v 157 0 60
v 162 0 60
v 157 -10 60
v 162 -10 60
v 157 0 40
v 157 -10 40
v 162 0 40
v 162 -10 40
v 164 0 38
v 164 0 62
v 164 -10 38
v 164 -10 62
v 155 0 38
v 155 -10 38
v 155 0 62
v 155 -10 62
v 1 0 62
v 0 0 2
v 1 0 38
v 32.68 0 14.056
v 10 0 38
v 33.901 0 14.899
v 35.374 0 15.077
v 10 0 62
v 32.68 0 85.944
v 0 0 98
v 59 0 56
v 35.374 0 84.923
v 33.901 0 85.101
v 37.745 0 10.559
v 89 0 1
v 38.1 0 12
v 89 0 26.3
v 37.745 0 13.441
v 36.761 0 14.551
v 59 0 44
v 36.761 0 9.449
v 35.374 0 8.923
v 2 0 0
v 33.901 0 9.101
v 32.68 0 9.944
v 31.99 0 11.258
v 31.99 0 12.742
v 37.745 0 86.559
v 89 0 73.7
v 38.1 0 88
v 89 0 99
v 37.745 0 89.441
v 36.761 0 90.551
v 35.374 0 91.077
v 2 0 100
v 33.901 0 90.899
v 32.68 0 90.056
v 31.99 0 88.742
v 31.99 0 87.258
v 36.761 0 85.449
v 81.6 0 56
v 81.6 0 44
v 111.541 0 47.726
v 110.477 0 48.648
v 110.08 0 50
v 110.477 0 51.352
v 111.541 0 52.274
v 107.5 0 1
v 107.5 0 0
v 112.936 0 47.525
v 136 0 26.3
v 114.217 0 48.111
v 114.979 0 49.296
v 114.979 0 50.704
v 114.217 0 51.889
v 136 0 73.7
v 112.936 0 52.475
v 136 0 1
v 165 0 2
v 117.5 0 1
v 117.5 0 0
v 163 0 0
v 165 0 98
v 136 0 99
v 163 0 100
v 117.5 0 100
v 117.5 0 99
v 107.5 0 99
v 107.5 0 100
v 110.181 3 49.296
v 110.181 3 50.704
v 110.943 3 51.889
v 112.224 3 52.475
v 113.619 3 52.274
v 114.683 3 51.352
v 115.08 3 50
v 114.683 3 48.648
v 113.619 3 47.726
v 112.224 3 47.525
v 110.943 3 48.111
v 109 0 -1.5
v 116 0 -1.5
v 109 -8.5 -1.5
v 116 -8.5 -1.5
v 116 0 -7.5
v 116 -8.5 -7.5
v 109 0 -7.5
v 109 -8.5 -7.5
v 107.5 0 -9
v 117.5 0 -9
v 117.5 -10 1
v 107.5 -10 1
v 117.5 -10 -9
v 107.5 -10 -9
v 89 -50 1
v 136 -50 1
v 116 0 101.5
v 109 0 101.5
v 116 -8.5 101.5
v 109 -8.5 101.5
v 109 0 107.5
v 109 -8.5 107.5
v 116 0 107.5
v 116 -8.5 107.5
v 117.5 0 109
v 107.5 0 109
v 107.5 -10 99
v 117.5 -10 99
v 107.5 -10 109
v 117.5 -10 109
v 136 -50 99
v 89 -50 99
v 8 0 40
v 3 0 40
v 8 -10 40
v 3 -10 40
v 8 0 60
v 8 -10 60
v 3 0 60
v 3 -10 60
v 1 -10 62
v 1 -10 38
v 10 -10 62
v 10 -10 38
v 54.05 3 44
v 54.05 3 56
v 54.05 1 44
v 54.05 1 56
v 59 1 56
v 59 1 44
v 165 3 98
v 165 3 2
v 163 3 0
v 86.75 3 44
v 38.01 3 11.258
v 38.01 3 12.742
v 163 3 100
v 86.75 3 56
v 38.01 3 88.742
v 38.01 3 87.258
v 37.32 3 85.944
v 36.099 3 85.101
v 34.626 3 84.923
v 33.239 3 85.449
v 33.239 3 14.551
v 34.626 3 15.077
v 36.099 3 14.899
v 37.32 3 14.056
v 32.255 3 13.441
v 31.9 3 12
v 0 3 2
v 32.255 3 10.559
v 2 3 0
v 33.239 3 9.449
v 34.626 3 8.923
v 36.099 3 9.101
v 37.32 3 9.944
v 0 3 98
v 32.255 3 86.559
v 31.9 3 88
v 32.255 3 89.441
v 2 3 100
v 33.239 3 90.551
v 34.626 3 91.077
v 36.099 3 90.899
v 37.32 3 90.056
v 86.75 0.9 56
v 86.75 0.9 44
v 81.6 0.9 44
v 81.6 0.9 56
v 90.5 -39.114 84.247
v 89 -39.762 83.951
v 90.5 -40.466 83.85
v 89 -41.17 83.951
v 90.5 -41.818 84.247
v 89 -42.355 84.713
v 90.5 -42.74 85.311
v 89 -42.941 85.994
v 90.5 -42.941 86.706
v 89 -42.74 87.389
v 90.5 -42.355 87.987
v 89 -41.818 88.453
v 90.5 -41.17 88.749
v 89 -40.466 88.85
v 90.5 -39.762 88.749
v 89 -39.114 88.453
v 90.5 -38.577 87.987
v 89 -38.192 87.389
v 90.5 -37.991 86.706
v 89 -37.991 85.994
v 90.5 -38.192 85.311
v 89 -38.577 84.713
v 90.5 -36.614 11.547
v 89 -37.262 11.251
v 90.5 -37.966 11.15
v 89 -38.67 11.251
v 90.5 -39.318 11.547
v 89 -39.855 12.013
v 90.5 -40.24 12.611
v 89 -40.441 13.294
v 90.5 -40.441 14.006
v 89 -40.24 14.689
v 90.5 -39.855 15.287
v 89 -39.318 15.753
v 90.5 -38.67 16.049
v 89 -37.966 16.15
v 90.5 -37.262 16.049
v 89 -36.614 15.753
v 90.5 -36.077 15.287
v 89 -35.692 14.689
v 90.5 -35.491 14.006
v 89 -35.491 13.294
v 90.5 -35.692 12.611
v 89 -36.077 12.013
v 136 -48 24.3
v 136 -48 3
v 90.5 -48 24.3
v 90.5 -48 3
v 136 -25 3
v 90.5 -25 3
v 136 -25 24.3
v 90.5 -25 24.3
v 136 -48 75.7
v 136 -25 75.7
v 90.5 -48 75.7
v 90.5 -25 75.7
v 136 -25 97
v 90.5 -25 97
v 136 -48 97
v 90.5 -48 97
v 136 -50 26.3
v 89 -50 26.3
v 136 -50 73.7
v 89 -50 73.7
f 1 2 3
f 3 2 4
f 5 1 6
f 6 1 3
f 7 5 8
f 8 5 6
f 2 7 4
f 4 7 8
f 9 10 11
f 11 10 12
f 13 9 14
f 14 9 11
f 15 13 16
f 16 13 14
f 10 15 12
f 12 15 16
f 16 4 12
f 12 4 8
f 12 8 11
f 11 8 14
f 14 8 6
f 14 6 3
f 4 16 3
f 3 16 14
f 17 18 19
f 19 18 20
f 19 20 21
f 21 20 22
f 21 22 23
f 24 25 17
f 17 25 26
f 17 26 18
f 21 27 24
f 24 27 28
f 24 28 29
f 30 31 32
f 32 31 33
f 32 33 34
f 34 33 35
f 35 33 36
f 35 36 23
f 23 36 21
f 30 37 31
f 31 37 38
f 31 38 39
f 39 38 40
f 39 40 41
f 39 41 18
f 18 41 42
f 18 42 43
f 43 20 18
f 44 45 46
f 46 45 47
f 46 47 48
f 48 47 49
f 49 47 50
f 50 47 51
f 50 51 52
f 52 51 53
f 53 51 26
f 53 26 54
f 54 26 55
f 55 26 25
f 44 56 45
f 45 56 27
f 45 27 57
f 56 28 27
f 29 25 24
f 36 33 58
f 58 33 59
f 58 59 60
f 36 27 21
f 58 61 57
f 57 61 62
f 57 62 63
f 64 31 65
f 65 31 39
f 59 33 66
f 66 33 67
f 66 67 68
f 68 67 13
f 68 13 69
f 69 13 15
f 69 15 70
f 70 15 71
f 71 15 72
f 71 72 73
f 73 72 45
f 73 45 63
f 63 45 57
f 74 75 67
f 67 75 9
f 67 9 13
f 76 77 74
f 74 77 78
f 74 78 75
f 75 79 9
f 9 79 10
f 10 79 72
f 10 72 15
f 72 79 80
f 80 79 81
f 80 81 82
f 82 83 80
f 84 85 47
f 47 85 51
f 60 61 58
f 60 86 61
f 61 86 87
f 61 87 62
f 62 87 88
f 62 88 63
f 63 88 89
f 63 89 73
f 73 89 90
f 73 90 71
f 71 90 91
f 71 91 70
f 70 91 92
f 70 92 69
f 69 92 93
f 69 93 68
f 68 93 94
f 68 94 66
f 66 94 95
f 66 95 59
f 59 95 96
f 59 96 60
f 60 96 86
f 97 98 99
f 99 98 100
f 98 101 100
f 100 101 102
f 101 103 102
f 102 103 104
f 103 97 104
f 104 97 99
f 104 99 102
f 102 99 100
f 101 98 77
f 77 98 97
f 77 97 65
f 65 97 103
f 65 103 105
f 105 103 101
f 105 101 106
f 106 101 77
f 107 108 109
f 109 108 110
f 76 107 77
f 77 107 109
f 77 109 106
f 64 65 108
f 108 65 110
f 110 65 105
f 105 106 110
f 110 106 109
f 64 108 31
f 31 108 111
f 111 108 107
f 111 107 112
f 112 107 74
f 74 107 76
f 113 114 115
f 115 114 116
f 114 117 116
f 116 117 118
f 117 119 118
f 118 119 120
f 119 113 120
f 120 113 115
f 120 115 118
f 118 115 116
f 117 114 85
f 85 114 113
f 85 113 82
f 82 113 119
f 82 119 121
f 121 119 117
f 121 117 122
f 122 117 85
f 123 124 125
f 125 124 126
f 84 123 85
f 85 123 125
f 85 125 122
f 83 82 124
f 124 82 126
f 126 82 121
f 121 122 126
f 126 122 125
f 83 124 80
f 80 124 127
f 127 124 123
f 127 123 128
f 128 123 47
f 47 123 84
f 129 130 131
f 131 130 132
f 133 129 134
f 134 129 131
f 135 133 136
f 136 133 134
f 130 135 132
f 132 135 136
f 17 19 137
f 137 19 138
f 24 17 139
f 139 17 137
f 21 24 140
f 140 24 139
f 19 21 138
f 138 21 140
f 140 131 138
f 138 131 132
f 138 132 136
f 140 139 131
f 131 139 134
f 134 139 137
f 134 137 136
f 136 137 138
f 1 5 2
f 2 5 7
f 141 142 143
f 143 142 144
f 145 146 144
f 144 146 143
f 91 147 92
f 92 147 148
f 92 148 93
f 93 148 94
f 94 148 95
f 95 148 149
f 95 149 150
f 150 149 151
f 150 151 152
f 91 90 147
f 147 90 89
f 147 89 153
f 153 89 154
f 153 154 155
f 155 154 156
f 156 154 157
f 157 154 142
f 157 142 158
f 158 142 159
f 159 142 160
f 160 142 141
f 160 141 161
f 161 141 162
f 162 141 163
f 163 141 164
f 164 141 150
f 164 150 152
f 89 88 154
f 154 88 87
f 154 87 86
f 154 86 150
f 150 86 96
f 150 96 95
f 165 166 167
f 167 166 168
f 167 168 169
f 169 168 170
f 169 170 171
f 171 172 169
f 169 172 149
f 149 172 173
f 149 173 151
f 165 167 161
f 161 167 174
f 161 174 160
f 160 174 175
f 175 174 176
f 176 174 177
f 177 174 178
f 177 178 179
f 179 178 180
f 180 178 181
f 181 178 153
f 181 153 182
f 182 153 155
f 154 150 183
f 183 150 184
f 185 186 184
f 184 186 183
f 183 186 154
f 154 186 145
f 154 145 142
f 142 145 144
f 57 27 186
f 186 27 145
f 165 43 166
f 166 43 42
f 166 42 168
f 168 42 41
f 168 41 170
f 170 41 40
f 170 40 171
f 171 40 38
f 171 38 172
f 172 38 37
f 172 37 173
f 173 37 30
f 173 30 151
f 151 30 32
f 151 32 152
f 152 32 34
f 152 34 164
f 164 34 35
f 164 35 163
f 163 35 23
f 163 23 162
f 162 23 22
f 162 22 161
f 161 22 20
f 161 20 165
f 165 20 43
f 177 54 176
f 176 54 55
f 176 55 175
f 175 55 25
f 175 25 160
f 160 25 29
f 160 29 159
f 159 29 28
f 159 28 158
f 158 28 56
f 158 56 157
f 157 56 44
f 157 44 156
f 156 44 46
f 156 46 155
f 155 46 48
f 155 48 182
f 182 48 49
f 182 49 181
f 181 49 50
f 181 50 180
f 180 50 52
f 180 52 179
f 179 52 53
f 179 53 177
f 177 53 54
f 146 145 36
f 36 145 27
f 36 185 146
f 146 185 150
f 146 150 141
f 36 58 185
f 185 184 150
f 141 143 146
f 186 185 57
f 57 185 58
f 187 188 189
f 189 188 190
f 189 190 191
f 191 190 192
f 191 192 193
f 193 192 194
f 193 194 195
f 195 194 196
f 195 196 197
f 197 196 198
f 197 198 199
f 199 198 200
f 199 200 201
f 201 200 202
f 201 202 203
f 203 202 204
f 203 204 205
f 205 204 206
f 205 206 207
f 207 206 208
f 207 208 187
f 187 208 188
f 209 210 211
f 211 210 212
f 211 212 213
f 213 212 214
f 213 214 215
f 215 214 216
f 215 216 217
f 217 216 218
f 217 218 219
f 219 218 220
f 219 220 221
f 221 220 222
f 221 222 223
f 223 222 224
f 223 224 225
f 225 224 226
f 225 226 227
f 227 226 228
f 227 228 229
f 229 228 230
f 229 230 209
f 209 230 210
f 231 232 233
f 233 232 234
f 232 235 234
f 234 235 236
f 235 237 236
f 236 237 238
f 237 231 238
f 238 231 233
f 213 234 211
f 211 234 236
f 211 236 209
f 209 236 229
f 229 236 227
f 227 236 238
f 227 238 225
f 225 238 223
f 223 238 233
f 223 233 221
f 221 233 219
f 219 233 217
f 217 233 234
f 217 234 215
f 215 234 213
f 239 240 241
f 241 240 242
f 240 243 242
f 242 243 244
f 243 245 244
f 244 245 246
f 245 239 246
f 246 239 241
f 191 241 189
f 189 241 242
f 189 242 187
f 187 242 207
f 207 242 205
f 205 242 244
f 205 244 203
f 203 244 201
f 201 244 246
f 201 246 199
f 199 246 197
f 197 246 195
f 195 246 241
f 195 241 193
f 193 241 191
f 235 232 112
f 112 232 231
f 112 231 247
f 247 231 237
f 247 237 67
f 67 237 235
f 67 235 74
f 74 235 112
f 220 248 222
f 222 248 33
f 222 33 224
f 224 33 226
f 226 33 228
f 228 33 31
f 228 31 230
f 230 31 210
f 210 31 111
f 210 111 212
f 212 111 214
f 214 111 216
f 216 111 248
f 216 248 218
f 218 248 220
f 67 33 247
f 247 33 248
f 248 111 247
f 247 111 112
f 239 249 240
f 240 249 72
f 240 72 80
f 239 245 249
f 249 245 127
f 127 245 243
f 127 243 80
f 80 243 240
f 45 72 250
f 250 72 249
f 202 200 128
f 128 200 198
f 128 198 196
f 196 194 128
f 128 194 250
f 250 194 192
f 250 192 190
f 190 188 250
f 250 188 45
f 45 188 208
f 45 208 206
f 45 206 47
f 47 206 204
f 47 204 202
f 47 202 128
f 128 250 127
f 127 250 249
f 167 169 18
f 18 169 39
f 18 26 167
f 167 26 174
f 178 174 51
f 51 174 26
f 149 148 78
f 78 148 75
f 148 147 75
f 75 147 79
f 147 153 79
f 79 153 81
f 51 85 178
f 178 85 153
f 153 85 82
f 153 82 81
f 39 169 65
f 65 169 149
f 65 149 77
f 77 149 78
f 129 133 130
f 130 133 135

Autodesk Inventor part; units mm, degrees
ref_plane "YZ Plane" through (0, 0, 0) normal (1, 0, 0) x (0, 1, 0)
ref_plane "XZ Plane" through (0, 0, 0) normal (0, 1, 0) x (-1, 0, 0)
ref_plane "XY Plane" through (0, 0, 0) normal (0, 0, 1) x (1, 0, 0)
sketch "Sketch1" plane through (0, 0, 0) normal (0, 1, 0) x (-1, 0, 0)
  line L0 (0, 0) -> (-165, 0)
  line L1 (-165, 0) -> (-165, 100)
  line L2 (0, 0) -> (0, 100)
  line L3 (0, 100) -> (-165, 100)
  dimension "d0" = 165
  dimension "d1" = 100
extrude "Extrusion1" add sketch "Sketch1" along normal blind 3
chamfer "Chamfer1" distance 2 angle 45 4 edges at (165, 1.5, 100) (165, 1.5, 0) (0, 1.5, 100) (0, 1.5, 0)
sketch "Sketch2" plane through (0, 0, 0) normal (0, -1, 0) x (1, 0, 0)
  line L0 (163, 100) -> (165, 98) projected
  line L1 (165, 98) -> (135, 98)
  line L2 (135, 98) -> (135, 74.7)
  line L3 (135, 98) -> (90, 98)
  line L4 (135, 74.7) -> (90, 74.7)
  line L5 (90, 74.7) -> (90, 98)
  line L6 (89, 73.7) -> (136, 73.7)
  line L7 (136, 73.7) -> (136, 99)
  line L8 (136, 99) -> (89, 99)
  line L9 (89, 99) -> (89, 73.7)
  line L10 (165, 98) -> (165, 2) projected
  line L11 (165, 2) -> (135, 2)
  line L12 (135, 2) -> (135, 25.3)
  line L13 (135, 25.3) -> (90, 25.3)
  line L14 (90, 25.3) -> (90, 2)
  line L15 (90, 2) -> (135, 2)
  line L16 (136, 26.3) -> (136, 1)
  line L17 (136, 1) -> (89, 1)
  line L18 (89, 1) -> (89, 26.3)
  line L19 (89, 26.3) -> (136, 26.3)
  point P0 (0, 0)
  dimension "d7" = 30
  dimension "d8" = 23.3
  dimension "d9" = 45
  dimension "d10" = 1
  dimension "d11" = 23.3
  dimension "d12" = 1
  dimension "d24" = 45
extrude "Extrusion2" add sketch "Sketch2" along normal blind 50 contours L2 L4 L5 L3 | L7 L6 L9 L8 | L15 L14 L13 L12 | L16 L17 L18 L19
sketch "Sketch3" plane through (136, 0, 99) normal (1, 0, 0) x (0, 0, -1)
  line L0 (72.7, 0) -> (72.7, -50) projected
  line L1 (72.7, -50) -> (72.7, -23)
  line L2 (72.7, -23) -> (98, -23)
  line L3 (98, 0) -> (98, -50) projected
  line L4 (98, -23) -> (98, -50)
  line L5 (98, -50) -> (72.7, -50)
  line L6 (96, -25) -> (74.7, -25)
  line L7 (74.7, -25) -> (74.7, -48)
  line L8 (74.7, -48) -> (96, -48)
  line L9 (96, -48) -> (96, -25)
  line L10 (25.3, 0) -> (25.3, -50) projected
  line L11 (0, -50) -> (25.3, -50)
  line L12 (25.3, -50) -> (25.3, -23)
  line L13 (25.3, -23) -> (0, -23)
  line L14 (0, -23) -> (0, -50)
  line L15 (2, -25) -> (23.3, -25)
  line L16 (23.3, -25) -> (23.3, -48)
  line L17 (23.3, -48) -> (2, -48)
  line L18 (2, -48) -> (2, -25)
  point P0 (99, 0)
  dimension "d15" = 27
  dimension "d16" = 2
  dimension "d17" = 2
extrude "Extrusion3" cut sketch "Sketch3" against normal blind 45.5 contours L9 L8 L7 L6 | L15 L16 L17 L18
sketch "Sketch4" plane through (89, 0, 1) normal (-1, 0, 0) x (0, 0, 1)
  circle A0 centre (12.65, -37.966) radius 2.5
  circle A1 centre (85.35, -40.466) radius 2.5
  point P0 (-1, 0)
  dimension "d20" = 5
  dimension "d21" = 5
extrude "Extrusion4" cut sketch "Sketch4" against normal blind 41
sketch "Sketch5" plane through (0, 0, 0) normal (0, -1, 0) x (1, 0, 0)
  line L0 (89, 1) -> (89, 26.3) projected
  line L1 (89, 73.7) -> (89, 99) projected
  line L2 (42.1762, 44) -> (98.4238, 44)
  line L3 (70.3, 44) -> (70.3, 56)
  line L4 (70.3, 56) -> (59, 56)
  line L5 (70.3, 56) -> (81.6, 56)
  line L6 (81.6, 56) -> (81.6, 44)
  line L7 (59, 56) -> (59, 44)
  line L8 (59, 50) -> (35, 50)
  line L9 (35, 50) -> (35, 12)
  line L10 (35, 50) -> (35, 88)
  circle A0 centre (35, 12) radius 3.1
  circle A1 centre (35, 88) radius 3.1
  line L11 (89, 73.7) -> (136, 73.7) projected
  line L12 (89, 73.7) -> (71, 73.7)
  point P0 (0, 0)
  point P1 (65, 50)
  point P2 (71, 50)
  point P3 (53.7, 50)
  dimension "d25" = 12
  dimension "d26" = 11.3
  dimension "d27" = 11.3
  dimension "d28" = 24
  dimension "d29" = 38
  dimension "d30" = 38
  dimension "d31" = 6.2
  dimension "d32" = 6.2
  dimension "d39" = 18
extrude "Extrusion5" cut sketch "Sketch5" against normal blind 45.5
sketch "Sketch6" plane through (0, 3, 0) normal (0, 1, 0) x (1, 0, 0)
  line L0 (59, -44) -> (81.6, -44) projected
  line L1 (70.3, -44) -> (70.3, -27.55)
  line L2 (70.3, -44) -> (86.75, -44)
  line L3 (86.75, -44) -> (86.75, -56)
  line L4 (86.75, -56) -> (70.3, -56)
  line L5 (70.3, -56) -> (70.3, -27.55)
  point P0 (0, 0)
  point P1 (71, -38.7)
  dimension "d35" = 16.45
  dimension "d36" = 16.45
extrude "Extrusion6" cut sketch "Sketch6" against normal blind 2.1
sketch "Sketch7" plane through (0, 3, 0) normal (0, 1, 0) x (1, 0, 0)
  line L0 (81.6, -44) -> (59, -44) projected
  line L1 (70.3, -44) -> (54.05, -44)
  line L2 (70.3, -44) -> (86.55, -44)
  line L3 (54.05, -44) -> (54.05, -56)
  line L4 (86.75, -56) -> (81.6, -56) projected
  line L5 (54.05, -56) -> (86.75, -56)
  line L6 (86.75, -56) -> (86.55, -44)
  point P0 (0, 0)
  dimension "d40" = 16.25
  dimension "d41" = 16.25
extrude "Extrusion7" cut sketch "Sketch7" against normal blind 2
sketch "Sketch8" plane through (0, 0, 0) normal (0, -1, 0) x (1, 0, 0)
  line L0 (0, 2) -> (0, 98) projected
  line L1 (0, 50) -> (3, 50)
  line L2 (3, 50) -> (3, 60)
  line L3 (2, 100) -> (163, 100) projected
  line L4 (3, 50) -> (3, 40)
  line L5 (3, 40) -> (8, 40)
  line L6 (8, 40) -> (8, 60)
  line L7 (8, 60) -> (3, 60)
  line L8 (10, 62) -> (10, 38)
  line L9 (10, 38) -> (1, 38)
  line L10 (1, 38) -> (1, 50)
  line L11 (1, 50) -> (1, 62)
  line L12 (1, 62) -> (10, 62)
  point P0 (0, 0)
  dimension "d44" = 3
  dimension "d45" = 10
  dimension "d46" = 10
  dimension "d47" = 5
  dimension "d48" = 2
extrude "Extrusion8" add sketch "Sketch8" along normal blind 10
sketch "Sketch9" plane through (89, 0, 99) normal (0, 0, 1) x (1, 0, 0)
  line L0 (47, 0) -> (0, 0) projected
  line L1 (23.5, 0) -> (28.5, 0)
  line L2 (23.5, 0) -> (18.5, 0)
  line L3 (18.5, 0) -> (18.5, -10)
  line L4 (18.5, -10) -> (28.5, -10)
  line L5 (28.5, -10) -> (28.5, 0)
  point P0 (-89, 0)
  dimension "d51" = 5
  dimension "d52" = 5
  dimension "d53" = 10
extrude "Extrusion9" add sketch "Sketch9" along normal blind 10
sketch "Sketch10" plane through (107.5, 0, 100) normal (0, 1, 0) x (1, 0, 0)
  line L0 (0, 0) -> (0, -9) projected
  line L1 (10, 0) -> (10, -9) projected
  line L2 (0, 0) -> (10, 0)
  line L3 (10, 0) -> (10, -9)
  line L4 (10, -9) -> (0, -9)
  line L5 (0, -9) -> (0, 0)
  line L6 (1.5, -7.5) -> (8.5, -7.5)
  line L7 (8.5, -7.5) -> (8.5, -1.5)
  line L8 (8.5, -1.5) -> (1.5, -1.5)
  line L9 (1.5, -1.5) -> (1.5, -7.5)
  point P0 (-107.5, 100)
  dimension "d56" = 1.5
extrude "Extrusion10" cut sketch "Sketch10" against normal blind 8.5 contours L9 L8 L7 L6
sketch "Sketch11" plane through (136, 0, 1) normal (0, 0, -1) x (-1, 0, 0)
  line L0 (28.5, 0) -> (28.5, -10) projected
  line L1 (28.5, 0) -> (28.5, -10)
  line L2 (18.5, -10) -> (18.5, 0) projected
  line L3 (28.5, -10) -> (18.5, -10)
  line L4 (18.5, -10) -> (18.5, 0)
  line L5 (28.5, 0) -> (18.5, 0)
  point P0 (136, 0)
extrude "Extrusion11" add sketch "Sketch11" along normal blind 10
sketch "Sketch12" plane through (107.5, 0, 0) normal (0, 1, 0) x (1, 0, 0)
  line L0 (10, 0) -> (0, 0) projected
  line L1 (0, 0) -> (0, 9) projected
  line L2 (0, 0) -> (0, 9)
  line L3 (10, 0) -> (10, 9) projected
  line L4 (0, 9) -> (10, 9)
  line L5 (10, 9) -> (10, 0)
  line L6 (10, 0) -> (0, 0)
  line L7 (8.5, 7.5) -> (1.5, 7.5)
  line L8 (1.5, 7.5) -> (1.5, 1.5)
  line L9 (1.5, 1.5) -> (8.5, 1.5)
  line L10 (8.5, 1.5) -> (8.5, 7.5)
  point P0 (-107.5, 0)
  dimension "d61" = 1.5
extrude "Extrusion12" cut sketch "Sketch12" against normal blind 8.5 contours L10 L9 L8 L7
sketch "Sketch13" plane through (0, 3, 0) normal (0, 1, 0) x (1, 0, 0)
  circle A0 centre (112.58, -50) radius 2.5
  point P0 (0, 0)
  dimension "d64" = 5
extrude "Extrusion13" cut sketch "Sketch13" against normal blind 8.5
sketch "Sketch14" plane through (0, 0, 0) normal (0, -1, 0) x (1, 0, 0)
  line L0 (165, 98) -> (165, 2) projected
  line L1 (165, 50) -> (162, 50)
  line L2 (162, 50) -> (162, 40)
  line L3 (162, 50) -> (162, 60)
  line L4 (162, 40) -> (157, 40)
  line L5 (157, 40) -> (157, 60)
  line L6 (157, 60) -> (162, 60)
  line L7 (155, 38) -> (164, 38)
  line L8 (164, 38) -> (164, 50)
  line L9 (164, 50) -> (164, 62)
  line L10 (164, 62) -> (155, 62)
  line L11 (155, 62) -> (155, 38)
  point P0 (0, 0)
  dimension "d67" = 3
  dimension "d68" = 10
  dimension "d69" = 10
  dimension "d70" = 5
  dimension "d71" = 2
extrude "Extrusion14" add sketch "Sketch14" along normal blind 10
properties part number "DesainV1.3"
